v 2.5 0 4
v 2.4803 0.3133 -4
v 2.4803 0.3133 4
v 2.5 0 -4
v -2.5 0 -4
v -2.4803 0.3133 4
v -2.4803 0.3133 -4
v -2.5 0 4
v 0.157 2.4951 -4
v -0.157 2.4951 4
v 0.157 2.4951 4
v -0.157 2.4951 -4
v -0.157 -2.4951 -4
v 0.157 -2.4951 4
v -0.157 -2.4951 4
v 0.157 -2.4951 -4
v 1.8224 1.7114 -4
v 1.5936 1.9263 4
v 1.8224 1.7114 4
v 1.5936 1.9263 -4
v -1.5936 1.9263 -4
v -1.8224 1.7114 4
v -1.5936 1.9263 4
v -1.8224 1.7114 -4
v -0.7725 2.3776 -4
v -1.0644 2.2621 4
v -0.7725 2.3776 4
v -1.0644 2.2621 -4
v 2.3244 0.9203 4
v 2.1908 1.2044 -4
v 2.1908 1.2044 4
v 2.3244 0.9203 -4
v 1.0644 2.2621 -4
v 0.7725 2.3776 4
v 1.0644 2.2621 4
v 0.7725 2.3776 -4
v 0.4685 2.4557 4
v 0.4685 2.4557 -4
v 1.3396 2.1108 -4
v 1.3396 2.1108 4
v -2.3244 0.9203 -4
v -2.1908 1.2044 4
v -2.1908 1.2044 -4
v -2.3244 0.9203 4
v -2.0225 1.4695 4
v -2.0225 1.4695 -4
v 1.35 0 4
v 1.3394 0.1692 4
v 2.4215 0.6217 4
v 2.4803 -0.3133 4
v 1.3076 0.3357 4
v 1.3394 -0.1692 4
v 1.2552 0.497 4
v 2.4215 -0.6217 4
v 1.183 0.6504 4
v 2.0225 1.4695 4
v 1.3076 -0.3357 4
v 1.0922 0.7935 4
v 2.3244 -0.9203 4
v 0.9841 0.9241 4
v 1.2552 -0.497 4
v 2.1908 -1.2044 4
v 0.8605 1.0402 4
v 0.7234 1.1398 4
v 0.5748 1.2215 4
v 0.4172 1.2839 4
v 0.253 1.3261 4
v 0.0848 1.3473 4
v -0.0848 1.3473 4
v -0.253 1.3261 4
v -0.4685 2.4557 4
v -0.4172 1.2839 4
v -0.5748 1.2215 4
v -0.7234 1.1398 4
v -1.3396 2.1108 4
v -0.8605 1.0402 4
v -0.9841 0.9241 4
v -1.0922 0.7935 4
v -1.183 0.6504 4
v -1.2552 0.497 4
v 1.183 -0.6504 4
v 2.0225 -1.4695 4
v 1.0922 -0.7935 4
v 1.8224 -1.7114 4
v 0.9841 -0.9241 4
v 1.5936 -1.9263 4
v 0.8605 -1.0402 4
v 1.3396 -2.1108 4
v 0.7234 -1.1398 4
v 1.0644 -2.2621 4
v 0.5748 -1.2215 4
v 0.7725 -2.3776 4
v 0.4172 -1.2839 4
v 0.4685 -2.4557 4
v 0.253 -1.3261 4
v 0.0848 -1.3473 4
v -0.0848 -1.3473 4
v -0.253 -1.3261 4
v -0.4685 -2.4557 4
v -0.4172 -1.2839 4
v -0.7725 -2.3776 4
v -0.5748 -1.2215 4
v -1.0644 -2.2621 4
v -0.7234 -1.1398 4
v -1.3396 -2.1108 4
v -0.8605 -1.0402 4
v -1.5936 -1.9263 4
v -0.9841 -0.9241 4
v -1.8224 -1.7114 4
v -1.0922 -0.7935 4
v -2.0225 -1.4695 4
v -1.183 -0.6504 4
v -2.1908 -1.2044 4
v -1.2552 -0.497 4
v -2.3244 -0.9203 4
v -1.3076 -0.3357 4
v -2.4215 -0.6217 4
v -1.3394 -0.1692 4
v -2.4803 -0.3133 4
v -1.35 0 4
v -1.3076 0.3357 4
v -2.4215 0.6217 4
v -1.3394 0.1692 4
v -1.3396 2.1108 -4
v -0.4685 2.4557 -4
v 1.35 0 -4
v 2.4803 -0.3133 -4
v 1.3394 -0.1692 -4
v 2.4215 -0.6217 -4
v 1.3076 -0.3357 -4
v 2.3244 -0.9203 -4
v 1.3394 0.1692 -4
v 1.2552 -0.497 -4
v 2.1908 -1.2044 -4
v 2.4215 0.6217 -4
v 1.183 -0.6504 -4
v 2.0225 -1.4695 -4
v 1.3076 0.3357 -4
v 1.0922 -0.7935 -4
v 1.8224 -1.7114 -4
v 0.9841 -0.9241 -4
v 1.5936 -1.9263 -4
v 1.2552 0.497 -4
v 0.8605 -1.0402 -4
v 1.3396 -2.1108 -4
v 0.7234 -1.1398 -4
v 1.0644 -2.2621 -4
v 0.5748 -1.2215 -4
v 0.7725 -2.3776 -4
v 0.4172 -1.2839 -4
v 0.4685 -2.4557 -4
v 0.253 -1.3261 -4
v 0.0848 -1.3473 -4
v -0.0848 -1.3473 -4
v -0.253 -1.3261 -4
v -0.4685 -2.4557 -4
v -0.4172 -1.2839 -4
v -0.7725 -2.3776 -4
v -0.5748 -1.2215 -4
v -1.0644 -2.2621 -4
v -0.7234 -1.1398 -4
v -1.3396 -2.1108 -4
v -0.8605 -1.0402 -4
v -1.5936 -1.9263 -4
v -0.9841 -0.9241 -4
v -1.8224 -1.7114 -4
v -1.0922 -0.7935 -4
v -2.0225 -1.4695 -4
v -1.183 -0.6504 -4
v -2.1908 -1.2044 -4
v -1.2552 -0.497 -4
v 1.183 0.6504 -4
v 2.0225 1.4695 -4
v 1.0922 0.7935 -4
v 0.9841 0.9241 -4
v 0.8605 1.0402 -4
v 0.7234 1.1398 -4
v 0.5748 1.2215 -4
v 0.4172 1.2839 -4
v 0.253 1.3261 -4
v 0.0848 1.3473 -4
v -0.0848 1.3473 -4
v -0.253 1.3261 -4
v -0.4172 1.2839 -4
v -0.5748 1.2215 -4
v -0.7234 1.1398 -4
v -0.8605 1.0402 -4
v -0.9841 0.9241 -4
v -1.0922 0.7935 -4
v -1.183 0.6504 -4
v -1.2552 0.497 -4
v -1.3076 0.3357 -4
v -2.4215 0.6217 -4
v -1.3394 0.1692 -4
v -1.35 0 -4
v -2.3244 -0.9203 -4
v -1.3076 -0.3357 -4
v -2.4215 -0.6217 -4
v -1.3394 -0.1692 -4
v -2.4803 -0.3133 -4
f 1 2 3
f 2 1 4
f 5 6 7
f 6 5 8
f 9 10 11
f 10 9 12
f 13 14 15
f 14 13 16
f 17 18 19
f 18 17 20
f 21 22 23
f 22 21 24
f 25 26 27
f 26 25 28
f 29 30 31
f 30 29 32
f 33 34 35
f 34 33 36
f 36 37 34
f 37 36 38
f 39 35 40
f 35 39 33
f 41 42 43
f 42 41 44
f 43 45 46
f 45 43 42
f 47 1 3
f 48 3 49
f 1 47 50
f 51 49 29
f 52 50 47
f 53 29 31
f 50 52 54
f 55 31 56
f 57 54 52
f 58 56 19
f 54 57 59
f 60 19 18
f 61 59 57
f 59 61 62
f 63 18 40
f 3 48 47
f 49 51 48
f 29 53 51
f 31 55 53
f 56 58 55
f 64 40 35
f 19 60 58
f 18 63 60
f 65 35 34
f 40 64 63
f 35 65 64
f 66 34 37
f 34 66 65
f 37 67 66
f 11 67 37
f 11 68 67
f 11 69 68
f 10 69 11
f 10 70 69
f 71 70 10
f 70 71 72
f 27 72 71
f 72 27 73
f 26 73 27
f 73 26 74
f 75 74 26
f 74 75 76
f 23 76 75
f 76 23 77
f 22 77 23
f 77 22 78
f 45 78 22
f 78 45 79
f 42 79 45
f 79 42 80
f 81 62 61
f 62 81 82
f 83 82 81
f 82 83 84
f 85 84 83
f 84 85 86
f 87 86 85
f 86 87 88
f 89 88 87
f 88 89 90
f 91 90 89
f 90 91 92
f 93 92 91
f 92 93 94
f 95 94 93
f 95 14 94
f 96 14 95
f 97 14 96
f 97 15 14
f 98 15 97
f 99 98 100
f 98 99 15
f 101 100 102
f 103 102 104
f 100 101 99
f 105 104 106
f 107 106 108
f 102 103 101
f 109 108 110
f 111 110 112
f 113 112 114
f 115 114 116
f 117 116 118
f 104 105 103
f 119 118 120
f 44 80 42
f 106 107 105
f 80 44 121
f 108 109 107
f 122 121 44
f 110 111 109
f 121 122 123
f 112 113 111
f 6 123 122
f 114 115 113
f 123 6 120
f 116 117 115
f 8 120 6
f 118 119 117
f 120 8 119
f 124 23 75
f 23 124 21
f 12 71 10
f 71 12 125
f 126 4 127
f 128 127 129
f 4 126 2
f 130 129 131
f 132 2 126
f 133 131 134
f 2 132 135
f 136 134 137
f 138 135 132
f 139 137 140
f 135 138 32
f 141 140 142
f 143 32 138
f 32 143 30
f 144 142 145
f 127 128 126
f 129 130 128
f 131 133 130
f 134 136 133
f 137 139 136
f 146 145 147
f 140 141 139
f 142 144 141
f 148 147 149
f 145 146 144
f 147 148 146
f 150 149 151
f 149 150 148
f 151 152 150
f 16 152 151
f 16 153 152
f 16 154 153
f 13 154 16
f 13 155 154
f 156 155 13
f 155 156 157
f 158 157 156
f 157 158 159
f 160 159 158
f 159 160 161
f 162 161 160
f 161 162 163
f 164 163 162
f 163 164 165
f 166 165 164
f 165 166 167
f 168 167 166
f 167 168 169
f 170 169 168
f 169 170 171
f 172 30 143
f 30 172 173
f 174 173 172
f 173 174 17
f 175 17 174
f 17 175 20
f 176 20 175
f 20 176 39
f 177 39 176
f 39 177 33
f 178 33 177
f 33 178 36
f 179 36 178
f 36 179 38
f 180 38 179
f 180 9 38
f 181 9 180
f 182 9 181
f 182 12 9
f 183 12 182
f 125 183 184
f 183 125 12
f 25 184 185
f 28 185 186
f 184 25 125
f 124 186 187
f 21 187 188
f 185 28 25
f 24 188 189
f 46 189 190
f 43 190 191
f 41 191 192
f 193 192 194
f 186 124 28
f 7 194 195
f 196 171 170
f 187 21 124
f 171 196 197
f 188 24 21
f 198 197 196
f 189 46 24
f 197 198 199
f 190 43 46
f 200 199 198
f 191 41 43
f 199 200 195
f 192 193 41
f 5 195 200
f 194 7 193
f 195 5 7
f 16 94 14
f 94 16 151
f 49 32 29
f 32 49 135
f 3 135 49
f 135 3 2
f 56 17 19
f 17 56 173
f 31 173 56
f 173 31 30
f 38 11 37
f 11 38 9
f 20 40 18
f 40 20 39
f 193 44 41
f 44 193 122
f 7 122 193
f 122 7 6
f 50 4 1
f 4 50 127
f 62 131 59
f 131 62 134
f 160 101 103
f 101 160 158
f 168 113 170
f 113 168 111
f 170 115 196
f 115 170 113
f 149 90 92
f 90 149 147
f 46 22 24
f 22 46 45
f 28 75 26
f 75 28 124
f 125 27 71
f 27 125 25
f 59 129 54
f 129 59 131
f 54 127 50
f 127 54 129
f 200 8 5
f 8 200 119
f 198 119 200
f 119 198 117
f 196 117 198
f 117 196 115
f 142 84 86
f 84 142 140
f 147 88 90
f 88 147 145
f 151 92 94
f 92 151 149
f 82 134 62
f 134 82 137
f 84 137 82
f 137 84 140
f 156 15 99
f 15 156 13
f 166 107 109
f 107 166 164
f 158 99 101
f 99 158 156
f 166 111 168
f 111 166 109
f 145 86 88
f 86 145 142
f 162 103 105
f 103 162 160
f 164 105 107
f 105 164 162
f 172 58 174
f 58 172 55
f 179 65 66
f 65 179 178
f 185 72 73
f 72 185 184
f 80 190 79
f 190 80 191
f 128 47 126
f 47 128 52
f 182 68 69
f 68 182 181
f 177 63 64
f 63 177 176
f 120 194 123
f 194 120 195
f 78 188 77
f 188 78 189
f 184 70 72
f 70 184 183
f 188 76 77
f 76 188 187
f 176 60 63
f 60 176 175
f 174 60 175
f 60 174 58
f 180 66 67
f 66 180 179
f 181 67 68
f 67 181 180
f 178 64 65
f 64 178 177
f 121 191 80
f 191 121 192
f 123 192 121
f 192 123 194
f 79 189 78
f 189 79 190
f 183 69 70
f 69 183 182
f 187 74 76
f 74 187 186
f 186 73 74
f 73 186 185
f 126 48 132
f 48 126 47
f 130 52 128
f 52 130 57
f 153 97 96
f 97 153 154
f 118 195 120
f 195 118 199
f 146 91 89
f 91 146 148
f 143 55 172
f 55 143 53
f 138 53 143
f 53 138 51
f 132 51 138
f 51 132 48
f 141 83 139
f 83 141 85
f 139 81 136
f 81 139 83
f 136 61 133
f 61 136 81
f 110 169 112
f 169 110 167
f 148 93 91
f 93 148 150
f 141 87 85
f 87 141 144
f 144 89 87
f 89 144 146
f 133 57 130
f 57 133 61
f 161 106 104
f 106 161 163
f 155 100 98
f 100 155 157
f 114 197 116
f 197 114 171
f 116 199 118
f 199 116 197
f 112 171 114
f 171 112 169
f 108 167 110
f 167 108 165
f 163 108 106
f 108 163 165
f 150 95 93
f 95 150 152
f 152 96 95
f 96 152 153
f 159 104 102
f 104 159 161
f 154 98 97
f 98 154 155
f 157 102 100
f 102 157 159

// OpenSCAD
$fn = 50;


difference() {
	union() {
		translate(v = [0, 0, -4.0000000000]) {
			cylinder(h = 8, r = 2.5000000000);
		}
	}
	union() {
		translate(v = [0, 0, -100.0000000000]) {
			cylinder(h = 200, r = 1.3500000000);
		}
	}
}
